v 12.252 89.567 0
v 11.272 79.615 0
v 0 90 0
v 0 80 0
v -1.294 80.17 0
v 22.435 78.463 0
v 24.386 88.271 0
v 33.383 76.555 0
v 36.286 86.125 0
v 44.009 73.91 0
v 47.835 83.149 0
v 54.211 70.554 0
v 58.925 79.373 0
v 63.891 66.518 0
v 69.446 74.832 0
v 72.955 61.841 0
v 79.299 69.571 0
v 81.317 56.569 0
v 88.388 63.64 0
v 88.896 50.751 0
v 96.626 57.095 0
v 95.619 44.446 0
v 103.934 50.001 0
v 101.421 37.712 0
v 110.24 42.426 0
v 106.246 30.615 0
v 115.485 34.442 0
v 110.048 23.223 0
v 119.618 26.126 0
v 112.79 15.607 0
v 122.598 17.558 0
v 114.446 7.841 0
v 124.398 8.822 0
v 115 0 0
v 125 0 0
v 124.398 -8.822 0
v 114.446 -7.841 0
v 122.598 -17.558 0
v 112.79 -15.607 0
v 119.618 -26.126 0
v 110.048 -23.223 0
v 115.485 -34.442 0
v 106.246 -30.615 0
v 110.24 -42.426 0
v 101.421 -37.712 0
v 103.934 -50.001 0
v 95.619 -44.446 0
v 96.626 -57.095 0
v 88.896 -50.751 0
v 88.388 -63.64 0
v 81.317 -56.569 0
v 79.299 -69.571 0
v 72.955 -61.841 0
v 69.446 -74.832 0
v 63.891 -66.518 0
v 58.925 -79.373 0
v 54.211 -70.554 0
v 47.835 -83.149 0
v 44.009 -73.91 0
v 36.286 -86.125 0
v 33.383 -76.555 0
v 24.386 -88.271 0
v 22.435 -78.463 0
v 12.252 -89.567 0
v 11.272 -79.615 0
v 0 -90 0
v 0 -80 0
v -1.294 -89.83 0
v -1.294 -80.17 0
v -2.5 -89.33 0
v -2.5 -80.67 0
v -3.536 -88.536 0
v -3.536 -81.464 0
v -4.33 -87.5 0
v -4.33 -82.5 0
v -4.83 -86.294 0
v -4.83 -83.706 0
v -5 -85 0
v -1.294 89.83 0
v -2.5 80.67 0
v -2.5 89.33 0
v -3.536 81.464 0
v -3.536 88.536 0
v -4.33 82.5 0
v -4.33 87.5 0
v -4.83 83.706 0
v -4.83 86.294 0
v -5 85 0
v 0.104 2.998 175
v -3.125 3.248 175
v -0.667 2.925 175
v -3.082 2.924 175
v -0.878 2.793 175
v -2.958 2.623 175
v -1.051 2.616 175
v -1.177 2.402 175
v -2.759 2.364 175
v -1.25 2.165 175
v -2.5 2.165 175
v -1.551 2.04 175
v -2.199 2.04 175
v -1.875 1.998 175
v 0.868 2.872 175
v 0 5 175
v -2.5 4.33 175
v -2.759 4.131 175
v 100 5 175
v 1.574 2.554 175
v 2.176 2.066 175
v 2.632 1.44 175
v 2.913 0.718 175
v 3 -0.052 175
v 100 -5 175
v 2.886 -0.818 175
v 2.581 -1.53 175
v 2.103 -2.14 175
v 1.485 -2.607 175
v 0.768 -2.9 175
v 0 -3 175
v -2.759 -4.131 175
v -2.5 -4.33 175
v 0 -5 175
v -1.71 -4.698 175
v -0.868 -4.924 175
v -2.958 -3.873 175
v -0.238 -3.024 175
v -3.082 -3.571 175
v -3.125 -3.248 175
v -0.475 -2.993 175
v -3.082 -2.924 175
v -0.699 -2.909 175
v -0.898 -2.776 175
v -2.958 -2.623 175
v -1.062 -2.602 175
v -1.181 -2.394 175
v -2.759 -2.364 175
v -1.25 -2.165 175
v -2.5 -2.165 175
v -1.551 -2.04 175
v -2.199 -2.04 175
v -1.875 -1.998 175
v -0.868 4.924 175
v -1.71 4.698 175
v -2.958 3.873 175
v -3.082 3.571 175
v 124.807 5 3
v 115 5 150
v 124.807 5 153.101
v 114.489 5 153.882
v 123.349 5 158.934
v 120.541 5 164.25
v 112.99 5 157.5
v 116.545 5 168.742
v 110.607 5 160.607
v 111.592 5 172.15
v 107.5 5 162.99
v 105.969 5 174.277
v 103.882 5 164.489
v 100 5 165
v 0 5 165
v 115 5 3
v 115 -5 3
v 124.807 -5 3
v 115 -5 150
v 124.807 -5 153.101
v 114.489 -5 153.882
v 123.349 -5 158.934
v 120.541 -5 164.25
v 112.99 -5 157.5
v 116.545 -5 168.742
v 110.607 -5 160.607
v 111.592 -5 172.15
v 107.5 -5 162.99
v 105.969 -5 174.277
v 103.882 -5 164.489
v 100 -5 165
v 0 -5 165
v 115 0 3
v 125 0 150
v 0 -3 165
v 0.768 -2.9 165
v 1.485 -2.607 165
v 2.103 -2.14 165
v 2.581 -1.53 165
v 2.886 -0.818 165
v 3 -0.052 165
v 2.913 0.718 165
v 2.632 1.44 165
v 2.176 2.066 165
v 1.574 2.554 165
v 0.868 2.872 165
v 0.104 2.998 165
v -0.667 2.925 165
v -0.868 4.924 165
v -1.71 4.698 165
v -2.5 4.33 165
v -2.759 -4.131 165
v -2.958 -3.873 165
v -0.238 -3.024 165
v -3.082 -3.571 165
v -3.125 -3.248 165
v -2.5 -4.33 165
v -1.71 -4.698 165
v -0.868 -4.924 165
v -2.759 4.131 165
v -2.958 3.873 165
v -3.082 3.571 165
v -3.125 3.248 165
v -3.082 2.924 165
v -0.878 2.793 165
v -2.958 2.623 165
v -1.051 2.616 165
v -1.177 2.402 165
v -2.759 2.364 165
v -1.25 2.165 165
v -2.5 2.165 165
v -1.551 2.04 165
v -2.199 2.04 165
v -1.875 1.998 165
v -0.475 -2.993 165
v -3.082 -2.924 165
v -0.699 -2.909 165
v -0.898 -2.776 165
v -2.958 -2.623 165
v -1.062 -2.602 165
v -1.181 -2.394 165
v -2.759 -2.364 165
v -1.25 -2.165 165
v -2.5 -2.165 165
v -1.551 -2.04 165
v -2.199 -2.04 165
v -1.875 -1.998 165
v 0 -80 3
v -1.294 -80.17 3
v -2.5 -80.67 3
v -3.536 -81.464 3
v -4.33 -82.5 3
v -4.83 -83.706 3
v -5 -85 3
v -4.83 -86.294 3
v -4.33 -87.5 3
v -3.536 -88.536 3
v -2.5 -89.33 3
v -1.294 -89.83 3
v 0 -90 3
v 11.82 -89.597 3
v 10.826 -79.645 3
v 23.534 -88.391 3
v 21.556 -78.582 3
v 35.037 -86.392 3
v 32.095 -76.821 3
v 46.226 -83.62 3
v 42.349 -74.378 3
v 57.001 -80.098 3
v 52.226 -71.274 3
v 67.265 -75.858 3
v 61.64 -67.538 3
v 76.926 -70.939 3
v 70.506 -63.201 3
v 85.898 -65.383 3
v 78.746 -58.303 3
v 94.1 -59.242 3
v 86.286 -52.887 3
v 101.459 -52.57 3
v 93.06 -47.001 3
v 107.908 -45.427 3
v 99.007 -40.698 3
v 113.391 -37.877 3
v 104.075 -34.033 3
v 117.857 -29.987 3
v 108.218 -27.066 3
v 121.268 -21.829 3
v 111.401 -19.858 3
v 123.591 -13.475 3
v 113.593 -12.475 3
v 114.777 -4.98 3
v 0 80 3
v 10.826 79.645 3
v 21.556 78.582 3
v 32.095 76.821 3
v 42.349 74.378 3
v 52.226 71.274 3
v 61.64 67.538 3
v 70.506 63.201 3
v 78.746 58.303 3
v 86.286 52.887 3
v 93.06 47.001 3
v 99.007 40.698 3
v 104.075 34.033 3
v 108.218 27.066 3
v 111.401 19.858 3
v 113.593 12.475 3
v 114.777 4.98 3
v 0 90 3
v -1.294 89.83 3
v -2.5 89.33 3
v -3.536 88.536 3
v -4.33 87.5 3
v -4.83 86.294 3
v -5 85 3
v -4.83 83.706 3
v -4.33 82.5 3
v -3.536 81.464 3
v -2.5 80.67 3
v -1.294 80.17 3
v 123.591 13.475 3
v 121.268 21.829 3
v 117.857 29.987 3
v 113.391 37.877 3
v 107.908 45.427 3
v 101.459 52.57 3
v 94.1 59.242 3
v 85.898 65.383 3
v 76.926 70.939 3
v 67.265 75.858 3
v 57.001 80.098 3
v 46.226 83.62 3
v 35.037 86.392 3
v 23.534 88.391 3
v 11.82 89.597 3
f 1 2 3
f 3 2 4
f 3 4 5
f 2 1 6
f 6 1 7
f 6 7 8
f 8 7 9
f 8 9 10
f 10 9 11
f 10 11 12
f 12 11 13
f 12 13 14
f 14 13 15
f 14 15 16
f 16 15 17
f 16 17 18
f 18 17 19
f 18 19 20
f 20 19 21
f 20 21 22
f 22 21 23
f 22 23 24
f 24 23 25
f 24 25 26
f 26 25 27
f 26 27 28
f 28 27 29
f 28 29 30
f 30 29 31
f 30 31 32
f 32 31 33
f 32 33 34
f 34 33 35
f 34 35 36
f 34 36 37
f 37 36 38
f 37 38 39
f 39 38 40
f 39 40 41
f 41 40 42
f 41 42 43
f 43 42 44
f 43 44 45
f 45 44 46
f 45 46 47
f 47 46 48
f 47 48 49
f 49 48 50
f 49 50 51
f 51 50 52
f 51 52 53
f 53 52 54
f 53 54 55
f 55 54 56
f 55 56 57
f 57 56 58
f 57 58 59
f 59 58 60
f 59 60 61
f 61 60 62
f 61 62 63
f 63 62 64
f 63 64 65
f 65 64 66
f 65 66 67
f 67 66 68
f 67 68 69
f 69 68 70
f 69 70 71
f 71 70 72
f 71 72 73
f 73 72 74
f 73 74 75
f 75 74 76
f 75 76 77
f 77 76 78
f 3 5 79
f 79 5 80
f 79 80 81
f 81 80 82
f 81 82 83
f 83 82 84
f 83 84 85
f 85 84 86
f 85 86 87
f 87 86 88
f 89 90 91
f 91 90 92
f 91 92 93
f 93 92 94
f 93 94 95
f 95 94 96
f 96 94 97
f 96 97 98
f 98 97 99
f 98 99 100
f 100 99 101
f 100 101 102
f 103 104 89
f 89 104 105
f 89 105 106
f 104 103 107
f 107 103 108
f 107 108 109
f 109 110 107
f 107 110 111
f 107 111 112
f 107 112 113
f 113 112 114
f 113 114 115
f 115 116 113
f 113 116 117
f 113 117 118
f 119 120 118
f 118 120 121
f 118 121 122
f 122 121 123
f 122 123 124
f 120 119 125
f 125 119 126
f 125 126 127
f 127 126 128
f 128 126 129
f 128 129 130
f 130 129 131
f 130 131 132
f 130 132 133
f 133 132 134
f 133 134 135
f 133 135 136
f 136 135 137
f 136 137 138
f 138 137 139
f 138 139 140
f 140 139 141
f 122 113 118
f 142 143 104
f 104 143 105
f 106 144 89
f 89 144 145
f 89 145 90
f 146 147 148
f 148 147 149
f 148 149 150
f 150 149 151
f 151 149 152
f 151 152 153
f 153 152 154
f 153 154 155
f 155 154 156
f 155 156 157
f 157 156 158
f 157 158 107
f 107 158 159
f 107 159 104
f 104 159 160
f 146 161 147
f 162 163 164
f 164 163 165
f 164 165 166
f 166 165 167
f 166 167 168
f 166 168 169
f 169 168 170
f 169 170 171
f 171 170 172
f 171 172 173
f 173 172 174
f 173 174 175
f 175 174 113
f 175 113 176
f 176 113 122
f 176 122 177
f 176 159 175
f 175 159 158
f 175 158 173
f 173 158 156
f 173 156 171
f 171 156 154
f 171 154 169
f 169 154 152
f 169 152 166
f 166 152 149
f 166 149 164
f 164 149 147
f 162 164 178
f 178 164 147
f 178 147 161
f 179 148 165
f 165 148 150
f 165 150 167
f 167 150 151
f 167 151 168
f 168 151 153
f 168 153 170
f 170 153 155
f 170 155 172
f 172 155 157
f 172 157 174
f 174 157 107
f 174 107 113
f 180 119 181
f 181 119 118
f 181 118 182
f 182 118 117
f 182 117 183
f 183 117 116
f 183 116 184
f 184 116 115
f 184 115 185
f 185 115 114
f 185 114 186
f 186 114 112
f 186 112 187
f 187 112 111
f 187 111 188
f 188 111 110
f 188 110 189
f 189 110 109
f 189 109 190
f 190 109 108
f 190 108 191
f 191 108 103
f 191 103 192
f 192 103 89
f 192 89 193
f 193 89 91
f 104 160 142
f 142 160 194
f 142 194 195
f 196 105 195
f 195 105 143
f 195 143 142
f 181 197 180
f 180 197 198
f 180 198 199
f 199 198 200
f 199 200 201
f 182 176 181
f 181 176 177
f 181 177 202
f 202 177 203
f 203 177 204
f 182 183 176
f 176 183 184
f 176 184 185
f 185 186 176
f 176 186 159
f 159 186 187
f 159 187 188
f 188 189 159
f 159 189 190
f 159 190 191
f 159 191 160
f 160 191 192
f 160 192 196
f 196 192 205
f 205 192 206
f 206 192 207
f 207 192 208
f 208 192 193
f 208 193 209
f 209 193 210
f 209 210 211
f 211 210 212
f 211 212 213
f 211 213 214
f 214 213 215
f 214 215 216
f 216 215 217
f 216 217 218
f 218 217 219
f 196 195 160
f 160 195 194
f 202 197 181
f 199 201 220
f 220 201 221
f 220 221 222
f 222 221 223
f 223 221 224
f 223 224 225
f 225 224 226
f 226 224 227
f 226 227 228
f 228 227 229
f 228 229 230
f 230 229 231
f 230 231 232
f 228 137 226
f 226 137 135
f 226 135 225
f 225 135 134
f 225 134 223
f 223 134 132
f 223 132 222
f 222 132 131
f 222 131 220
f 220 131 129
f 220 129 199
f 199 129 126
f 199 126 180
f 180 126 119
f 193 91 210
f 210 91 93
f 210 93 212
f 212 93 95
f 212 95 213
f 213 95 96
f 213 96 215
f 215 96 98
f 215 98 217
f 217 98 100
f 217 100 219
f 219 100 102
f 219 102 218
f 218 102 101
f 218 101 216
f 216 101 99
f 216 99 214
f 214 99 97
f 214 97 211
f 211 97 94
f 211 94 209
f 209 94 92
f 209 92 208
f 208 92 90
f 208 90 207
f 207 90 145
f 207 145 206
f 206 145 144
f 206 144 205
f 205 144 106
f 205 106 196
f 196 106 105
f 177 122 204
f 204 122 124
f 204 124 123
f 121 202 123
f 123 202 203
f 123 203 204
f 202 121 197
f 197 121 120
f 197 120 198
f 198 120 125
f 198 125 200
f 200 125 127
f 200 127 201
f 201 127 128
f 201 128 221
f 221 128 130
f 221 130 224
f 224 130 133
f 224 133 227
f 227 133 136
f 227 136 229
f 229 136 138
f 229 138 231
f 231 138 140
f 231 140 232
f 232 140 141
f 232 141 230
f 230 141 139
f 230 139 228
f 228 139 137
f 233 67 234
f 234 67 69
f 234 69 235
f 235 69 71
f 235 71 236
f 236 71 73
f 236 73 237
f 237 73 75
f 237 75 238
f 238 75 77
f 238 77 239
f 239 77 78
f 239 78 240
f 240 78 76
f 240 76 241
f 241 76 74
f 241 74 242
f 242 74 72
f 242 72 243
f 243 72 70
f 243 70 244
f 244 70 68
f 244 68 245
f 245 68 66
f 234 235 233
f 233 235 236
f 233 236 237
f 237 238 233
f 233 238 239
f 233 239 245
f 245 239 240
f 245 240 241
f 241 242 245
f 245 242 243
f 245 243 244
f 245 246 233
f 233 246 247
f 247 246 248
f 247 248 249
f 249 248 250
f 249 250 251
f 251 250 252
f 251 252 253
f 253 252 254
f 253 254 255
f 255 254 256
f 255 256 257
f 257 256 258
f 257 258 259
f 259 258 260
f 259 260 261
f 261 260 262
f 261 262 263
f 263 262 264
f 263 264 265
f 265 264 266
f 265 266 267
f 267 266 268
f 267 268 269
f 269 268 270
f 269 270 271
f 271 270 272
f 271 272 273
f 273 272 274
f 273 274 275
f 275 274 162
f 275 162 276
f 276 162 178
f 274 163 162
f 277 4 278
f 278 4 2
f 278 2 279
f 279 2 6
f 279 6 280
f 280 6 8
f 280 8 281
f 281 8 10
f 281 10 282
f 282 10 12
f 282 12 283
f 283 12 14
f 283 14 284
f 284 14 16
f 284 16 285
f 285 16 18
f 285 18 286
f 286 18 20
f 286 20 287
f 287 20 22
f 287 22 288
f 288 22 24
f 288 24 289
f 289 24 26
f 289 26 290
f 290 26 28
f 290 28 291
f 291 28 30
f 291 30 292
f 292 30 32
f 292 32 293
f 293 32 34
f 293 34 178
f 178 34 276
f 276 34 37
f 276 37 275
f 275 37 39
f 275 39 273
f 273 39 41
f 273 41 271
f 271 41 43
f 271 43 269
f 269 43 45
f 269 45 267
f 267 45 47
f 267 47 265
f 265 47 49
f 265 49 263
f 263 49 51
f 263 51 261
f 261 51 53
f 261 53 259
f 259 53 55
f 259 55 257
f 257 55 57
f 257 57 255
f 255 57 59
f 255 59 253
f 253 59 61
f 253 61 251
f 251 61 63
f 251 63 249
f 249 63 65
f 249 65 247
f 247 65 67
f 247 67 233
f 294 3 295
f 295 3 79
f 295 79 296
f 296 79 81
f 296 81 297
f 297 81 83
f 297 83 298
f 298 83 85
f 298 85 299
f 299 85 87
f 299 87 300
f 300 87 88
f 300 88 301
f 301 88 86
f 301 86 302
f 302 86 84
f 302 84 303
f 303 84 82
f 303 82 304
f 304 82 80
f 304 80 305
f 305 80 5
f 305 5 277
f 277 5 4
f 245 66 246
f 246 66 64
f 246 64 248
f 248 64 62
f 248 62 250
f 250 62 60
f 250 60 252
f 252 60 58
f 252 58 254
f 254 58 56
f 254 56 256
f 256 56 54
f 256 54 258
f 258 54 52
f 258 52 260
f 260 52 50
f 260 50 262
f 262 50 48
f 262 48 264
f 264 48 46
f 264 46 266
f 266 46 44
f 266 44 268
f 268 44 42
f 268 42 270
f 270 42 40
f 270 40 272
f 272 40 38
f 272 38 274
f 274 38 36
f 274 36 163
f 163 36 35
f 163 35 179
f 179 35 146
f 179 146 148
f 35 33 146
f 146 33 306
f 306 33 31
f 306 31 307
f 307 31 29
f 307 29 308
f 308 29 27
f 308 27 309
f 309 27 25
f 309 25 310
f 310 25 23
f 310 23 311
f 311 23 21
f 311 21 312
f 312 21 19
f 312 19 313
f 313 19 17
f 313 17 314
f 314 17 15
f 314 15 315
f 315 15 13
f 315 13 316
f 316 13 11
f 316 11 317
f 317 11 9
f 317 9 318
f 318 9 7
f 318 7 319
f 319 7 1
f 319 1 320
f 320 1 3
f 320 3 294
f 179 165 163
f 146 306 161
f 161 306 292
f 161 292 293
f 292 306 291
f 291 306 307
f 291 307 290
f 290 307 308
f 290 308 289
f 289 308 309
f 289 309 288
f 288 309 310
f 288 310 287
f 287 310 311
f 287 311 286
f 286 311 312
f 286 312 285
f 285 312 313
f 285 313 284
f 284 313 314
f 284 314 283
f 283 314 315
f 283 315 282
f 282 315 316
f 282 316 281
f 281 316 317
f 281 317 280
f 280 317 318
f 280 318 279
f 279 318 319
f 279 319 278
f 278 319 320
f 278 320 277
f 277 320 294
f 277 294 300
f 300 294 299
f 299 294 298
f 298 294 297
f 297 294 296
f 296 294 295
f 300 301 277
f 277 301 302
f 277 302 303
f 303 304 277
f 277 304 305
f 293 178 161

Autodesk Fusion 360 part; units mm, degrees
sketch "スケッチ1" plane through (0, 0, 0) normal (0, 0, 1) x (1, 0, 0)
  circle A0 centre (0, 0) radius 76
  line L0 (-25, 0) -> (125, 0)
  circle A1 centre (120, 0) radius 5
  ellipse E0 centre (0, 0) end of major axis (125, 0) minor radius 90
  line L1 (-125, 0) -> (125, 0)
  line L2 (0, -90) -> (0, 90)
  ellipse E1 centre (0, 0) end of major axis (115, 0) minor radius 80
  line L3 (-115, 0) -> (115, 0)
  line L4 (0, -80) -> (0, 80)
  circle A2 centre (0, 85) radius 5
  circle A3 centre (0, -85) radius 5
  line L5 (120, 0) -> (115, 0)
  line L6 (120, 5) -> (120, 0)
  line L7 (115, 5) -> (125, 5)
  line L8 (125, 5) -> (125, -5)
  line L9 (125, -5) -> (115, -5)
  line L10 (115, -5) -> (115, 5)
  dimension "d1" = 152
  dimension "d2" = 150
extrude "押し出し1" add sketch "スケッチ1" along normal blind 141 contours A0 L0 L1 L2 L3 L4 | A0 L0 L1 L2 L3 L4 | A0 L0 L1 L2 L3 L4 | A0 L0 L1 L2 L3 L4 makes body 1
extrude "押し出し2" add sketch "スケッチ1" along normal blind 3 separate body contours E0 E1 A3 L9 L10 | E0 E1 A2 L7 L10 | L2 A2 | L2 A2 | L2 A3 | L2 A3 makes body 2 at (30.5782, -83.5354, 0)
sketch "スケッチ2" plane through (0, 0, 0) normal (0, 1, 0) x (1, 0, 0)
  line L0 (0, -170) -> (100, -170)
  line L1 (120, -150) -> (120, 0)
  arc A0 (100, -170) -> (120, -150) centre (100, -150) ccw
  line L2 (0, -170) -> (0, -175)
  line L3 (0, -175) -> (100, -175)
  line L4 (100, -175) -> (100, -165)
  line L5 (100, -165) -> (0, -165)
  line L6 (0, -165) -> (0, -175)
  circle A1 centre (100, -150) radius 15
  circle A2 centre (100, -150) radius 25
  line L7 (125, -150) -> (115, -150)
  line L8 (115, -150) -> (115, 0)
  line L9 (115, 0) -> (125, 0)
  line L10 (125, 0) -> (125, -150)
  dimension "d11" = 20
  dimension "d24" = 5
  dimension "d25" = 100
  dimension "d26" = 10
ref_plane "作業平面1" through (0, 0, 170) normal (0, 0, 1) x (1, 0, 0)
sketch "スケッチ3" plane through (0, 0, 170) normal (0, 0, 1) x (1, 0, 0)
  circle A0 centre (0, 0) radius 3
  circle A1 centre (0, 0) radius 5
  circle A2 centre (0, 0) radius 2.5
  line L0 (0, 0) -> (-5, 0)
  line L1 (0, 0) -> (-2.5, 4.3301)
  line L2 (0, 0) -> (-2.5, -4.3301)
  circle A3 centre (-1.875, 3.2476) radius 1.25
  circle A4 centre (-1.875, -3.2476) radius 1.25
  line L3 (0, 0) -> (5, 0)
  line L4 (0, 0) -> (0, 5)
  line L5 (0, 0) -> (0, -5)
  arc A5 (0, 3) -> (-1.25, 2.1651) centre (-0.2231, 1.9809) ccw
  arc A6 (-1.25, -2.1651) -> (0, -3) centre (-0.2231, -1.9809) ccw
  dimension "d17" = 6
  dimension "d18" = 10
  dimension "d23" = 5
extrude "押し出し4" add sketch "スケッチ3" along normal mid plane 10 separate body contours A0 A1 L3 L5 | A0 A1 L3 L4 | A1 A3 L4 A5 | A0 A5 | A0 A6 | A1 A4 L5 A6 | A0 L1 A5 | A0 L1 A3 | A0 L2 A4 | A0 L2 A6 | A0 L1 A3 | A0 L1 A3 | A0 L2 A4 | A0 L2 A4 makes body 3
extrude "押し出し6" add sketch "スケッチ2" along normal mid plane 10 contours L0 L5 L6 A2 | L0 L2 L3 L6 A2 | L0 L4 L5 A2 | L0 L4 A2 | A0 L4 A1 L7 | A0 L4 A2 L7 | L1 A2 L7 L8 | L1 A2 L7 | L1 A2 L8 L9 | L1 A2 L9 L10 bodies 3 2
extrude "押し出し5" cut sketch "スケッチ3" along normal mid plane 10 contours A0 A2 L3 L4 | A0 A2 L3 L5 | A0 A2 A3 L4 | A0 A6 | A0 A2 A4 L5 | A2 L3 L4 | A2 L3 L5 | A3 A5 | A2 L1 L4 | A4 A6 bodies 3
extrude "押し出し7" cut sketch "スケッチ1" along normal blind 175 contours E0 L8 L9 | E0 L7 L8 bodies 3
sketch "スケッチ4" plane through (0, 0, 0) normal (0, 0, 1) x (1, 0, 0)
  circle A0 centre (85, 0) radius 3
  circle A1 centre (75, 0) radius 3
  dimension "d66" = 6
  dimension "d68" = 6
extrude "押し出し8" add sketch "スケッチ4" along normal blind 150 separate body makes body 4 at (85.8125, 2.8879, 100) makes body 5 at (75.8125, 2.8879, 100)
sketch "スケッチ5" plane through (0, 0, 150) normal (0, 0, 1) x (-1, 0, 0)
  circle A0 centre (-85, 0) radius 3
  circle A1 centre (-75, 0) radius 3
  circle A2 centre (-85, 0) radius 1.5
  circle A3 centre (-75, 0) radius 1.6
  dimension "d69" = 3
  dimension "d70" = 3.2
extrude "押し出し9" add sketch "スケッチ5" along normal blind 3 contours A2 bodies 4
extrude "押し出し10" cut sketch "スケッチ5" against normal blind 3 contours A3 bodies 5
sketch "スケッチ6" plane through (0, 0, 0) normal (0, 0, 1) x (1, 0, 0)
  circle A0 centre (0, 0) radius 60
  circle A1 centre (0, 0) radius 55
  circle A2 centre (0, 0) radius 25
  line L0 (0, 0) -> (0, 60)
  line L1 (2.5, 55) -> (2.5, 0)
  line L2 (2.5, 0) -> (-2.5, 0)
  line L3 (-2.5, 0) -> (-2.5, 55)
  line L4 (1.25, -2.1651) -> (-46.3814, -29.6651)
  line L5 (-48.8814, -25.3349) -> (-1.25, 2.1651)
  line L6 (-1.25, 2.1651) -> (1.25, -2.1651)
  line L7 (1.25, 2.1651) -> (48.8814, -25.3349)
  line L8 (46.3814, -29.6651) -> (-1.25, -2.1651)
  line L9 (-1.25, -2.1651) -> (1.25, 2.1651)
  circle A3 centre (0, 0) radius 3
  dimension "d41" = 50
  dimension "d43" = 5
  dimension "d45" = 360
  dimension "d48" = 6
extrude "押し出し11" add sketch "スケッチ6" along normal blind 3 separate body contours A1 A2 L0 L1 | A1 A2 L0 L3 | A0 | A2 L0 L3 A3 | A2 L0 L1 A3 | A1 A2 L4 L5 | L0 L1 L7 L9 A3 | L0 L3 L5 L6 A3 | A1 A2 L7 L8 | A2 L4 L5 A3 | L1 L2 L7 L9 | L2 L3 L4 L5 L8 L9 A3 | L2 L3 L5 L6 | L1 L2 L4 L6 L7 L8 A3 | L4 L6 L8 L9 | A2 L7 L8 A3 makes body 6
extrude "押し出し12" add sketch "スケッチ6" along normal blind 13 contours L0 L1 L7 L9 A3 | L0 L3 L5 L6 A3 | L1 L7 A3 | L3 L5 A3 | L1 L2 L7 L9 | L2 L3 L4 L5 L8 L9 A3 | L2 L3 L5 L6 | L1 L2 L4 L6 L7 L8 A3 | L4 L6 L8 L9 | L4 L8 A3 bodies 6
ref_plane "作業平面2" through (0, 0, 23) normal (0, 0, 1) x (1, 0, 0)
sketch "スケッチ7" plane through (0, 0.0029, 23) normal (0, 0, 1) x (1, 0, 0)
  circle A0 centre (0, 0) radius 25
  line L0 (0, 0) -> (25, 0) construction
  line L1 (0, 0) -> (26.2494, 0) construction
  line L2 (0, 0) -> (28.4476, 0) construction
  circle A1 centre (-20.7846, -12) radius 1
  circle A2 centre (20.7846, -12) radius 1
  circle A3 centre (0, 24) radius 1
  dimension "d61" = 2
  dimension "d62" = 2
  dimension "d63" = 2
sketch "スケッチ8" plane through (0, 0, 13) normal (0, 0, 1) x (-1, 0, 0)
  circle A0 centre (0, 0) radius 3
  circle A1 centre (0, 0) radius 3
loft "ロフト1" add profiles "スケッチ8", "スケッチ7" section 1 section 2 contours A3 bodies 6
loft "ロフト2" add profiles "スケッチ8", "スケッチ7" section 1 section 2 contours A1 bodies 6
loft "ロフト3" add profiles "スケッチ8", "スケッチ7" section 1 section 2 contours A2 bodies 6
extrude "押し出し13" add sketch "スケッチ7" against normal blind 20 contours A3 | A1 | A2 bodies 6
hidden bodies 1 4 5 6
